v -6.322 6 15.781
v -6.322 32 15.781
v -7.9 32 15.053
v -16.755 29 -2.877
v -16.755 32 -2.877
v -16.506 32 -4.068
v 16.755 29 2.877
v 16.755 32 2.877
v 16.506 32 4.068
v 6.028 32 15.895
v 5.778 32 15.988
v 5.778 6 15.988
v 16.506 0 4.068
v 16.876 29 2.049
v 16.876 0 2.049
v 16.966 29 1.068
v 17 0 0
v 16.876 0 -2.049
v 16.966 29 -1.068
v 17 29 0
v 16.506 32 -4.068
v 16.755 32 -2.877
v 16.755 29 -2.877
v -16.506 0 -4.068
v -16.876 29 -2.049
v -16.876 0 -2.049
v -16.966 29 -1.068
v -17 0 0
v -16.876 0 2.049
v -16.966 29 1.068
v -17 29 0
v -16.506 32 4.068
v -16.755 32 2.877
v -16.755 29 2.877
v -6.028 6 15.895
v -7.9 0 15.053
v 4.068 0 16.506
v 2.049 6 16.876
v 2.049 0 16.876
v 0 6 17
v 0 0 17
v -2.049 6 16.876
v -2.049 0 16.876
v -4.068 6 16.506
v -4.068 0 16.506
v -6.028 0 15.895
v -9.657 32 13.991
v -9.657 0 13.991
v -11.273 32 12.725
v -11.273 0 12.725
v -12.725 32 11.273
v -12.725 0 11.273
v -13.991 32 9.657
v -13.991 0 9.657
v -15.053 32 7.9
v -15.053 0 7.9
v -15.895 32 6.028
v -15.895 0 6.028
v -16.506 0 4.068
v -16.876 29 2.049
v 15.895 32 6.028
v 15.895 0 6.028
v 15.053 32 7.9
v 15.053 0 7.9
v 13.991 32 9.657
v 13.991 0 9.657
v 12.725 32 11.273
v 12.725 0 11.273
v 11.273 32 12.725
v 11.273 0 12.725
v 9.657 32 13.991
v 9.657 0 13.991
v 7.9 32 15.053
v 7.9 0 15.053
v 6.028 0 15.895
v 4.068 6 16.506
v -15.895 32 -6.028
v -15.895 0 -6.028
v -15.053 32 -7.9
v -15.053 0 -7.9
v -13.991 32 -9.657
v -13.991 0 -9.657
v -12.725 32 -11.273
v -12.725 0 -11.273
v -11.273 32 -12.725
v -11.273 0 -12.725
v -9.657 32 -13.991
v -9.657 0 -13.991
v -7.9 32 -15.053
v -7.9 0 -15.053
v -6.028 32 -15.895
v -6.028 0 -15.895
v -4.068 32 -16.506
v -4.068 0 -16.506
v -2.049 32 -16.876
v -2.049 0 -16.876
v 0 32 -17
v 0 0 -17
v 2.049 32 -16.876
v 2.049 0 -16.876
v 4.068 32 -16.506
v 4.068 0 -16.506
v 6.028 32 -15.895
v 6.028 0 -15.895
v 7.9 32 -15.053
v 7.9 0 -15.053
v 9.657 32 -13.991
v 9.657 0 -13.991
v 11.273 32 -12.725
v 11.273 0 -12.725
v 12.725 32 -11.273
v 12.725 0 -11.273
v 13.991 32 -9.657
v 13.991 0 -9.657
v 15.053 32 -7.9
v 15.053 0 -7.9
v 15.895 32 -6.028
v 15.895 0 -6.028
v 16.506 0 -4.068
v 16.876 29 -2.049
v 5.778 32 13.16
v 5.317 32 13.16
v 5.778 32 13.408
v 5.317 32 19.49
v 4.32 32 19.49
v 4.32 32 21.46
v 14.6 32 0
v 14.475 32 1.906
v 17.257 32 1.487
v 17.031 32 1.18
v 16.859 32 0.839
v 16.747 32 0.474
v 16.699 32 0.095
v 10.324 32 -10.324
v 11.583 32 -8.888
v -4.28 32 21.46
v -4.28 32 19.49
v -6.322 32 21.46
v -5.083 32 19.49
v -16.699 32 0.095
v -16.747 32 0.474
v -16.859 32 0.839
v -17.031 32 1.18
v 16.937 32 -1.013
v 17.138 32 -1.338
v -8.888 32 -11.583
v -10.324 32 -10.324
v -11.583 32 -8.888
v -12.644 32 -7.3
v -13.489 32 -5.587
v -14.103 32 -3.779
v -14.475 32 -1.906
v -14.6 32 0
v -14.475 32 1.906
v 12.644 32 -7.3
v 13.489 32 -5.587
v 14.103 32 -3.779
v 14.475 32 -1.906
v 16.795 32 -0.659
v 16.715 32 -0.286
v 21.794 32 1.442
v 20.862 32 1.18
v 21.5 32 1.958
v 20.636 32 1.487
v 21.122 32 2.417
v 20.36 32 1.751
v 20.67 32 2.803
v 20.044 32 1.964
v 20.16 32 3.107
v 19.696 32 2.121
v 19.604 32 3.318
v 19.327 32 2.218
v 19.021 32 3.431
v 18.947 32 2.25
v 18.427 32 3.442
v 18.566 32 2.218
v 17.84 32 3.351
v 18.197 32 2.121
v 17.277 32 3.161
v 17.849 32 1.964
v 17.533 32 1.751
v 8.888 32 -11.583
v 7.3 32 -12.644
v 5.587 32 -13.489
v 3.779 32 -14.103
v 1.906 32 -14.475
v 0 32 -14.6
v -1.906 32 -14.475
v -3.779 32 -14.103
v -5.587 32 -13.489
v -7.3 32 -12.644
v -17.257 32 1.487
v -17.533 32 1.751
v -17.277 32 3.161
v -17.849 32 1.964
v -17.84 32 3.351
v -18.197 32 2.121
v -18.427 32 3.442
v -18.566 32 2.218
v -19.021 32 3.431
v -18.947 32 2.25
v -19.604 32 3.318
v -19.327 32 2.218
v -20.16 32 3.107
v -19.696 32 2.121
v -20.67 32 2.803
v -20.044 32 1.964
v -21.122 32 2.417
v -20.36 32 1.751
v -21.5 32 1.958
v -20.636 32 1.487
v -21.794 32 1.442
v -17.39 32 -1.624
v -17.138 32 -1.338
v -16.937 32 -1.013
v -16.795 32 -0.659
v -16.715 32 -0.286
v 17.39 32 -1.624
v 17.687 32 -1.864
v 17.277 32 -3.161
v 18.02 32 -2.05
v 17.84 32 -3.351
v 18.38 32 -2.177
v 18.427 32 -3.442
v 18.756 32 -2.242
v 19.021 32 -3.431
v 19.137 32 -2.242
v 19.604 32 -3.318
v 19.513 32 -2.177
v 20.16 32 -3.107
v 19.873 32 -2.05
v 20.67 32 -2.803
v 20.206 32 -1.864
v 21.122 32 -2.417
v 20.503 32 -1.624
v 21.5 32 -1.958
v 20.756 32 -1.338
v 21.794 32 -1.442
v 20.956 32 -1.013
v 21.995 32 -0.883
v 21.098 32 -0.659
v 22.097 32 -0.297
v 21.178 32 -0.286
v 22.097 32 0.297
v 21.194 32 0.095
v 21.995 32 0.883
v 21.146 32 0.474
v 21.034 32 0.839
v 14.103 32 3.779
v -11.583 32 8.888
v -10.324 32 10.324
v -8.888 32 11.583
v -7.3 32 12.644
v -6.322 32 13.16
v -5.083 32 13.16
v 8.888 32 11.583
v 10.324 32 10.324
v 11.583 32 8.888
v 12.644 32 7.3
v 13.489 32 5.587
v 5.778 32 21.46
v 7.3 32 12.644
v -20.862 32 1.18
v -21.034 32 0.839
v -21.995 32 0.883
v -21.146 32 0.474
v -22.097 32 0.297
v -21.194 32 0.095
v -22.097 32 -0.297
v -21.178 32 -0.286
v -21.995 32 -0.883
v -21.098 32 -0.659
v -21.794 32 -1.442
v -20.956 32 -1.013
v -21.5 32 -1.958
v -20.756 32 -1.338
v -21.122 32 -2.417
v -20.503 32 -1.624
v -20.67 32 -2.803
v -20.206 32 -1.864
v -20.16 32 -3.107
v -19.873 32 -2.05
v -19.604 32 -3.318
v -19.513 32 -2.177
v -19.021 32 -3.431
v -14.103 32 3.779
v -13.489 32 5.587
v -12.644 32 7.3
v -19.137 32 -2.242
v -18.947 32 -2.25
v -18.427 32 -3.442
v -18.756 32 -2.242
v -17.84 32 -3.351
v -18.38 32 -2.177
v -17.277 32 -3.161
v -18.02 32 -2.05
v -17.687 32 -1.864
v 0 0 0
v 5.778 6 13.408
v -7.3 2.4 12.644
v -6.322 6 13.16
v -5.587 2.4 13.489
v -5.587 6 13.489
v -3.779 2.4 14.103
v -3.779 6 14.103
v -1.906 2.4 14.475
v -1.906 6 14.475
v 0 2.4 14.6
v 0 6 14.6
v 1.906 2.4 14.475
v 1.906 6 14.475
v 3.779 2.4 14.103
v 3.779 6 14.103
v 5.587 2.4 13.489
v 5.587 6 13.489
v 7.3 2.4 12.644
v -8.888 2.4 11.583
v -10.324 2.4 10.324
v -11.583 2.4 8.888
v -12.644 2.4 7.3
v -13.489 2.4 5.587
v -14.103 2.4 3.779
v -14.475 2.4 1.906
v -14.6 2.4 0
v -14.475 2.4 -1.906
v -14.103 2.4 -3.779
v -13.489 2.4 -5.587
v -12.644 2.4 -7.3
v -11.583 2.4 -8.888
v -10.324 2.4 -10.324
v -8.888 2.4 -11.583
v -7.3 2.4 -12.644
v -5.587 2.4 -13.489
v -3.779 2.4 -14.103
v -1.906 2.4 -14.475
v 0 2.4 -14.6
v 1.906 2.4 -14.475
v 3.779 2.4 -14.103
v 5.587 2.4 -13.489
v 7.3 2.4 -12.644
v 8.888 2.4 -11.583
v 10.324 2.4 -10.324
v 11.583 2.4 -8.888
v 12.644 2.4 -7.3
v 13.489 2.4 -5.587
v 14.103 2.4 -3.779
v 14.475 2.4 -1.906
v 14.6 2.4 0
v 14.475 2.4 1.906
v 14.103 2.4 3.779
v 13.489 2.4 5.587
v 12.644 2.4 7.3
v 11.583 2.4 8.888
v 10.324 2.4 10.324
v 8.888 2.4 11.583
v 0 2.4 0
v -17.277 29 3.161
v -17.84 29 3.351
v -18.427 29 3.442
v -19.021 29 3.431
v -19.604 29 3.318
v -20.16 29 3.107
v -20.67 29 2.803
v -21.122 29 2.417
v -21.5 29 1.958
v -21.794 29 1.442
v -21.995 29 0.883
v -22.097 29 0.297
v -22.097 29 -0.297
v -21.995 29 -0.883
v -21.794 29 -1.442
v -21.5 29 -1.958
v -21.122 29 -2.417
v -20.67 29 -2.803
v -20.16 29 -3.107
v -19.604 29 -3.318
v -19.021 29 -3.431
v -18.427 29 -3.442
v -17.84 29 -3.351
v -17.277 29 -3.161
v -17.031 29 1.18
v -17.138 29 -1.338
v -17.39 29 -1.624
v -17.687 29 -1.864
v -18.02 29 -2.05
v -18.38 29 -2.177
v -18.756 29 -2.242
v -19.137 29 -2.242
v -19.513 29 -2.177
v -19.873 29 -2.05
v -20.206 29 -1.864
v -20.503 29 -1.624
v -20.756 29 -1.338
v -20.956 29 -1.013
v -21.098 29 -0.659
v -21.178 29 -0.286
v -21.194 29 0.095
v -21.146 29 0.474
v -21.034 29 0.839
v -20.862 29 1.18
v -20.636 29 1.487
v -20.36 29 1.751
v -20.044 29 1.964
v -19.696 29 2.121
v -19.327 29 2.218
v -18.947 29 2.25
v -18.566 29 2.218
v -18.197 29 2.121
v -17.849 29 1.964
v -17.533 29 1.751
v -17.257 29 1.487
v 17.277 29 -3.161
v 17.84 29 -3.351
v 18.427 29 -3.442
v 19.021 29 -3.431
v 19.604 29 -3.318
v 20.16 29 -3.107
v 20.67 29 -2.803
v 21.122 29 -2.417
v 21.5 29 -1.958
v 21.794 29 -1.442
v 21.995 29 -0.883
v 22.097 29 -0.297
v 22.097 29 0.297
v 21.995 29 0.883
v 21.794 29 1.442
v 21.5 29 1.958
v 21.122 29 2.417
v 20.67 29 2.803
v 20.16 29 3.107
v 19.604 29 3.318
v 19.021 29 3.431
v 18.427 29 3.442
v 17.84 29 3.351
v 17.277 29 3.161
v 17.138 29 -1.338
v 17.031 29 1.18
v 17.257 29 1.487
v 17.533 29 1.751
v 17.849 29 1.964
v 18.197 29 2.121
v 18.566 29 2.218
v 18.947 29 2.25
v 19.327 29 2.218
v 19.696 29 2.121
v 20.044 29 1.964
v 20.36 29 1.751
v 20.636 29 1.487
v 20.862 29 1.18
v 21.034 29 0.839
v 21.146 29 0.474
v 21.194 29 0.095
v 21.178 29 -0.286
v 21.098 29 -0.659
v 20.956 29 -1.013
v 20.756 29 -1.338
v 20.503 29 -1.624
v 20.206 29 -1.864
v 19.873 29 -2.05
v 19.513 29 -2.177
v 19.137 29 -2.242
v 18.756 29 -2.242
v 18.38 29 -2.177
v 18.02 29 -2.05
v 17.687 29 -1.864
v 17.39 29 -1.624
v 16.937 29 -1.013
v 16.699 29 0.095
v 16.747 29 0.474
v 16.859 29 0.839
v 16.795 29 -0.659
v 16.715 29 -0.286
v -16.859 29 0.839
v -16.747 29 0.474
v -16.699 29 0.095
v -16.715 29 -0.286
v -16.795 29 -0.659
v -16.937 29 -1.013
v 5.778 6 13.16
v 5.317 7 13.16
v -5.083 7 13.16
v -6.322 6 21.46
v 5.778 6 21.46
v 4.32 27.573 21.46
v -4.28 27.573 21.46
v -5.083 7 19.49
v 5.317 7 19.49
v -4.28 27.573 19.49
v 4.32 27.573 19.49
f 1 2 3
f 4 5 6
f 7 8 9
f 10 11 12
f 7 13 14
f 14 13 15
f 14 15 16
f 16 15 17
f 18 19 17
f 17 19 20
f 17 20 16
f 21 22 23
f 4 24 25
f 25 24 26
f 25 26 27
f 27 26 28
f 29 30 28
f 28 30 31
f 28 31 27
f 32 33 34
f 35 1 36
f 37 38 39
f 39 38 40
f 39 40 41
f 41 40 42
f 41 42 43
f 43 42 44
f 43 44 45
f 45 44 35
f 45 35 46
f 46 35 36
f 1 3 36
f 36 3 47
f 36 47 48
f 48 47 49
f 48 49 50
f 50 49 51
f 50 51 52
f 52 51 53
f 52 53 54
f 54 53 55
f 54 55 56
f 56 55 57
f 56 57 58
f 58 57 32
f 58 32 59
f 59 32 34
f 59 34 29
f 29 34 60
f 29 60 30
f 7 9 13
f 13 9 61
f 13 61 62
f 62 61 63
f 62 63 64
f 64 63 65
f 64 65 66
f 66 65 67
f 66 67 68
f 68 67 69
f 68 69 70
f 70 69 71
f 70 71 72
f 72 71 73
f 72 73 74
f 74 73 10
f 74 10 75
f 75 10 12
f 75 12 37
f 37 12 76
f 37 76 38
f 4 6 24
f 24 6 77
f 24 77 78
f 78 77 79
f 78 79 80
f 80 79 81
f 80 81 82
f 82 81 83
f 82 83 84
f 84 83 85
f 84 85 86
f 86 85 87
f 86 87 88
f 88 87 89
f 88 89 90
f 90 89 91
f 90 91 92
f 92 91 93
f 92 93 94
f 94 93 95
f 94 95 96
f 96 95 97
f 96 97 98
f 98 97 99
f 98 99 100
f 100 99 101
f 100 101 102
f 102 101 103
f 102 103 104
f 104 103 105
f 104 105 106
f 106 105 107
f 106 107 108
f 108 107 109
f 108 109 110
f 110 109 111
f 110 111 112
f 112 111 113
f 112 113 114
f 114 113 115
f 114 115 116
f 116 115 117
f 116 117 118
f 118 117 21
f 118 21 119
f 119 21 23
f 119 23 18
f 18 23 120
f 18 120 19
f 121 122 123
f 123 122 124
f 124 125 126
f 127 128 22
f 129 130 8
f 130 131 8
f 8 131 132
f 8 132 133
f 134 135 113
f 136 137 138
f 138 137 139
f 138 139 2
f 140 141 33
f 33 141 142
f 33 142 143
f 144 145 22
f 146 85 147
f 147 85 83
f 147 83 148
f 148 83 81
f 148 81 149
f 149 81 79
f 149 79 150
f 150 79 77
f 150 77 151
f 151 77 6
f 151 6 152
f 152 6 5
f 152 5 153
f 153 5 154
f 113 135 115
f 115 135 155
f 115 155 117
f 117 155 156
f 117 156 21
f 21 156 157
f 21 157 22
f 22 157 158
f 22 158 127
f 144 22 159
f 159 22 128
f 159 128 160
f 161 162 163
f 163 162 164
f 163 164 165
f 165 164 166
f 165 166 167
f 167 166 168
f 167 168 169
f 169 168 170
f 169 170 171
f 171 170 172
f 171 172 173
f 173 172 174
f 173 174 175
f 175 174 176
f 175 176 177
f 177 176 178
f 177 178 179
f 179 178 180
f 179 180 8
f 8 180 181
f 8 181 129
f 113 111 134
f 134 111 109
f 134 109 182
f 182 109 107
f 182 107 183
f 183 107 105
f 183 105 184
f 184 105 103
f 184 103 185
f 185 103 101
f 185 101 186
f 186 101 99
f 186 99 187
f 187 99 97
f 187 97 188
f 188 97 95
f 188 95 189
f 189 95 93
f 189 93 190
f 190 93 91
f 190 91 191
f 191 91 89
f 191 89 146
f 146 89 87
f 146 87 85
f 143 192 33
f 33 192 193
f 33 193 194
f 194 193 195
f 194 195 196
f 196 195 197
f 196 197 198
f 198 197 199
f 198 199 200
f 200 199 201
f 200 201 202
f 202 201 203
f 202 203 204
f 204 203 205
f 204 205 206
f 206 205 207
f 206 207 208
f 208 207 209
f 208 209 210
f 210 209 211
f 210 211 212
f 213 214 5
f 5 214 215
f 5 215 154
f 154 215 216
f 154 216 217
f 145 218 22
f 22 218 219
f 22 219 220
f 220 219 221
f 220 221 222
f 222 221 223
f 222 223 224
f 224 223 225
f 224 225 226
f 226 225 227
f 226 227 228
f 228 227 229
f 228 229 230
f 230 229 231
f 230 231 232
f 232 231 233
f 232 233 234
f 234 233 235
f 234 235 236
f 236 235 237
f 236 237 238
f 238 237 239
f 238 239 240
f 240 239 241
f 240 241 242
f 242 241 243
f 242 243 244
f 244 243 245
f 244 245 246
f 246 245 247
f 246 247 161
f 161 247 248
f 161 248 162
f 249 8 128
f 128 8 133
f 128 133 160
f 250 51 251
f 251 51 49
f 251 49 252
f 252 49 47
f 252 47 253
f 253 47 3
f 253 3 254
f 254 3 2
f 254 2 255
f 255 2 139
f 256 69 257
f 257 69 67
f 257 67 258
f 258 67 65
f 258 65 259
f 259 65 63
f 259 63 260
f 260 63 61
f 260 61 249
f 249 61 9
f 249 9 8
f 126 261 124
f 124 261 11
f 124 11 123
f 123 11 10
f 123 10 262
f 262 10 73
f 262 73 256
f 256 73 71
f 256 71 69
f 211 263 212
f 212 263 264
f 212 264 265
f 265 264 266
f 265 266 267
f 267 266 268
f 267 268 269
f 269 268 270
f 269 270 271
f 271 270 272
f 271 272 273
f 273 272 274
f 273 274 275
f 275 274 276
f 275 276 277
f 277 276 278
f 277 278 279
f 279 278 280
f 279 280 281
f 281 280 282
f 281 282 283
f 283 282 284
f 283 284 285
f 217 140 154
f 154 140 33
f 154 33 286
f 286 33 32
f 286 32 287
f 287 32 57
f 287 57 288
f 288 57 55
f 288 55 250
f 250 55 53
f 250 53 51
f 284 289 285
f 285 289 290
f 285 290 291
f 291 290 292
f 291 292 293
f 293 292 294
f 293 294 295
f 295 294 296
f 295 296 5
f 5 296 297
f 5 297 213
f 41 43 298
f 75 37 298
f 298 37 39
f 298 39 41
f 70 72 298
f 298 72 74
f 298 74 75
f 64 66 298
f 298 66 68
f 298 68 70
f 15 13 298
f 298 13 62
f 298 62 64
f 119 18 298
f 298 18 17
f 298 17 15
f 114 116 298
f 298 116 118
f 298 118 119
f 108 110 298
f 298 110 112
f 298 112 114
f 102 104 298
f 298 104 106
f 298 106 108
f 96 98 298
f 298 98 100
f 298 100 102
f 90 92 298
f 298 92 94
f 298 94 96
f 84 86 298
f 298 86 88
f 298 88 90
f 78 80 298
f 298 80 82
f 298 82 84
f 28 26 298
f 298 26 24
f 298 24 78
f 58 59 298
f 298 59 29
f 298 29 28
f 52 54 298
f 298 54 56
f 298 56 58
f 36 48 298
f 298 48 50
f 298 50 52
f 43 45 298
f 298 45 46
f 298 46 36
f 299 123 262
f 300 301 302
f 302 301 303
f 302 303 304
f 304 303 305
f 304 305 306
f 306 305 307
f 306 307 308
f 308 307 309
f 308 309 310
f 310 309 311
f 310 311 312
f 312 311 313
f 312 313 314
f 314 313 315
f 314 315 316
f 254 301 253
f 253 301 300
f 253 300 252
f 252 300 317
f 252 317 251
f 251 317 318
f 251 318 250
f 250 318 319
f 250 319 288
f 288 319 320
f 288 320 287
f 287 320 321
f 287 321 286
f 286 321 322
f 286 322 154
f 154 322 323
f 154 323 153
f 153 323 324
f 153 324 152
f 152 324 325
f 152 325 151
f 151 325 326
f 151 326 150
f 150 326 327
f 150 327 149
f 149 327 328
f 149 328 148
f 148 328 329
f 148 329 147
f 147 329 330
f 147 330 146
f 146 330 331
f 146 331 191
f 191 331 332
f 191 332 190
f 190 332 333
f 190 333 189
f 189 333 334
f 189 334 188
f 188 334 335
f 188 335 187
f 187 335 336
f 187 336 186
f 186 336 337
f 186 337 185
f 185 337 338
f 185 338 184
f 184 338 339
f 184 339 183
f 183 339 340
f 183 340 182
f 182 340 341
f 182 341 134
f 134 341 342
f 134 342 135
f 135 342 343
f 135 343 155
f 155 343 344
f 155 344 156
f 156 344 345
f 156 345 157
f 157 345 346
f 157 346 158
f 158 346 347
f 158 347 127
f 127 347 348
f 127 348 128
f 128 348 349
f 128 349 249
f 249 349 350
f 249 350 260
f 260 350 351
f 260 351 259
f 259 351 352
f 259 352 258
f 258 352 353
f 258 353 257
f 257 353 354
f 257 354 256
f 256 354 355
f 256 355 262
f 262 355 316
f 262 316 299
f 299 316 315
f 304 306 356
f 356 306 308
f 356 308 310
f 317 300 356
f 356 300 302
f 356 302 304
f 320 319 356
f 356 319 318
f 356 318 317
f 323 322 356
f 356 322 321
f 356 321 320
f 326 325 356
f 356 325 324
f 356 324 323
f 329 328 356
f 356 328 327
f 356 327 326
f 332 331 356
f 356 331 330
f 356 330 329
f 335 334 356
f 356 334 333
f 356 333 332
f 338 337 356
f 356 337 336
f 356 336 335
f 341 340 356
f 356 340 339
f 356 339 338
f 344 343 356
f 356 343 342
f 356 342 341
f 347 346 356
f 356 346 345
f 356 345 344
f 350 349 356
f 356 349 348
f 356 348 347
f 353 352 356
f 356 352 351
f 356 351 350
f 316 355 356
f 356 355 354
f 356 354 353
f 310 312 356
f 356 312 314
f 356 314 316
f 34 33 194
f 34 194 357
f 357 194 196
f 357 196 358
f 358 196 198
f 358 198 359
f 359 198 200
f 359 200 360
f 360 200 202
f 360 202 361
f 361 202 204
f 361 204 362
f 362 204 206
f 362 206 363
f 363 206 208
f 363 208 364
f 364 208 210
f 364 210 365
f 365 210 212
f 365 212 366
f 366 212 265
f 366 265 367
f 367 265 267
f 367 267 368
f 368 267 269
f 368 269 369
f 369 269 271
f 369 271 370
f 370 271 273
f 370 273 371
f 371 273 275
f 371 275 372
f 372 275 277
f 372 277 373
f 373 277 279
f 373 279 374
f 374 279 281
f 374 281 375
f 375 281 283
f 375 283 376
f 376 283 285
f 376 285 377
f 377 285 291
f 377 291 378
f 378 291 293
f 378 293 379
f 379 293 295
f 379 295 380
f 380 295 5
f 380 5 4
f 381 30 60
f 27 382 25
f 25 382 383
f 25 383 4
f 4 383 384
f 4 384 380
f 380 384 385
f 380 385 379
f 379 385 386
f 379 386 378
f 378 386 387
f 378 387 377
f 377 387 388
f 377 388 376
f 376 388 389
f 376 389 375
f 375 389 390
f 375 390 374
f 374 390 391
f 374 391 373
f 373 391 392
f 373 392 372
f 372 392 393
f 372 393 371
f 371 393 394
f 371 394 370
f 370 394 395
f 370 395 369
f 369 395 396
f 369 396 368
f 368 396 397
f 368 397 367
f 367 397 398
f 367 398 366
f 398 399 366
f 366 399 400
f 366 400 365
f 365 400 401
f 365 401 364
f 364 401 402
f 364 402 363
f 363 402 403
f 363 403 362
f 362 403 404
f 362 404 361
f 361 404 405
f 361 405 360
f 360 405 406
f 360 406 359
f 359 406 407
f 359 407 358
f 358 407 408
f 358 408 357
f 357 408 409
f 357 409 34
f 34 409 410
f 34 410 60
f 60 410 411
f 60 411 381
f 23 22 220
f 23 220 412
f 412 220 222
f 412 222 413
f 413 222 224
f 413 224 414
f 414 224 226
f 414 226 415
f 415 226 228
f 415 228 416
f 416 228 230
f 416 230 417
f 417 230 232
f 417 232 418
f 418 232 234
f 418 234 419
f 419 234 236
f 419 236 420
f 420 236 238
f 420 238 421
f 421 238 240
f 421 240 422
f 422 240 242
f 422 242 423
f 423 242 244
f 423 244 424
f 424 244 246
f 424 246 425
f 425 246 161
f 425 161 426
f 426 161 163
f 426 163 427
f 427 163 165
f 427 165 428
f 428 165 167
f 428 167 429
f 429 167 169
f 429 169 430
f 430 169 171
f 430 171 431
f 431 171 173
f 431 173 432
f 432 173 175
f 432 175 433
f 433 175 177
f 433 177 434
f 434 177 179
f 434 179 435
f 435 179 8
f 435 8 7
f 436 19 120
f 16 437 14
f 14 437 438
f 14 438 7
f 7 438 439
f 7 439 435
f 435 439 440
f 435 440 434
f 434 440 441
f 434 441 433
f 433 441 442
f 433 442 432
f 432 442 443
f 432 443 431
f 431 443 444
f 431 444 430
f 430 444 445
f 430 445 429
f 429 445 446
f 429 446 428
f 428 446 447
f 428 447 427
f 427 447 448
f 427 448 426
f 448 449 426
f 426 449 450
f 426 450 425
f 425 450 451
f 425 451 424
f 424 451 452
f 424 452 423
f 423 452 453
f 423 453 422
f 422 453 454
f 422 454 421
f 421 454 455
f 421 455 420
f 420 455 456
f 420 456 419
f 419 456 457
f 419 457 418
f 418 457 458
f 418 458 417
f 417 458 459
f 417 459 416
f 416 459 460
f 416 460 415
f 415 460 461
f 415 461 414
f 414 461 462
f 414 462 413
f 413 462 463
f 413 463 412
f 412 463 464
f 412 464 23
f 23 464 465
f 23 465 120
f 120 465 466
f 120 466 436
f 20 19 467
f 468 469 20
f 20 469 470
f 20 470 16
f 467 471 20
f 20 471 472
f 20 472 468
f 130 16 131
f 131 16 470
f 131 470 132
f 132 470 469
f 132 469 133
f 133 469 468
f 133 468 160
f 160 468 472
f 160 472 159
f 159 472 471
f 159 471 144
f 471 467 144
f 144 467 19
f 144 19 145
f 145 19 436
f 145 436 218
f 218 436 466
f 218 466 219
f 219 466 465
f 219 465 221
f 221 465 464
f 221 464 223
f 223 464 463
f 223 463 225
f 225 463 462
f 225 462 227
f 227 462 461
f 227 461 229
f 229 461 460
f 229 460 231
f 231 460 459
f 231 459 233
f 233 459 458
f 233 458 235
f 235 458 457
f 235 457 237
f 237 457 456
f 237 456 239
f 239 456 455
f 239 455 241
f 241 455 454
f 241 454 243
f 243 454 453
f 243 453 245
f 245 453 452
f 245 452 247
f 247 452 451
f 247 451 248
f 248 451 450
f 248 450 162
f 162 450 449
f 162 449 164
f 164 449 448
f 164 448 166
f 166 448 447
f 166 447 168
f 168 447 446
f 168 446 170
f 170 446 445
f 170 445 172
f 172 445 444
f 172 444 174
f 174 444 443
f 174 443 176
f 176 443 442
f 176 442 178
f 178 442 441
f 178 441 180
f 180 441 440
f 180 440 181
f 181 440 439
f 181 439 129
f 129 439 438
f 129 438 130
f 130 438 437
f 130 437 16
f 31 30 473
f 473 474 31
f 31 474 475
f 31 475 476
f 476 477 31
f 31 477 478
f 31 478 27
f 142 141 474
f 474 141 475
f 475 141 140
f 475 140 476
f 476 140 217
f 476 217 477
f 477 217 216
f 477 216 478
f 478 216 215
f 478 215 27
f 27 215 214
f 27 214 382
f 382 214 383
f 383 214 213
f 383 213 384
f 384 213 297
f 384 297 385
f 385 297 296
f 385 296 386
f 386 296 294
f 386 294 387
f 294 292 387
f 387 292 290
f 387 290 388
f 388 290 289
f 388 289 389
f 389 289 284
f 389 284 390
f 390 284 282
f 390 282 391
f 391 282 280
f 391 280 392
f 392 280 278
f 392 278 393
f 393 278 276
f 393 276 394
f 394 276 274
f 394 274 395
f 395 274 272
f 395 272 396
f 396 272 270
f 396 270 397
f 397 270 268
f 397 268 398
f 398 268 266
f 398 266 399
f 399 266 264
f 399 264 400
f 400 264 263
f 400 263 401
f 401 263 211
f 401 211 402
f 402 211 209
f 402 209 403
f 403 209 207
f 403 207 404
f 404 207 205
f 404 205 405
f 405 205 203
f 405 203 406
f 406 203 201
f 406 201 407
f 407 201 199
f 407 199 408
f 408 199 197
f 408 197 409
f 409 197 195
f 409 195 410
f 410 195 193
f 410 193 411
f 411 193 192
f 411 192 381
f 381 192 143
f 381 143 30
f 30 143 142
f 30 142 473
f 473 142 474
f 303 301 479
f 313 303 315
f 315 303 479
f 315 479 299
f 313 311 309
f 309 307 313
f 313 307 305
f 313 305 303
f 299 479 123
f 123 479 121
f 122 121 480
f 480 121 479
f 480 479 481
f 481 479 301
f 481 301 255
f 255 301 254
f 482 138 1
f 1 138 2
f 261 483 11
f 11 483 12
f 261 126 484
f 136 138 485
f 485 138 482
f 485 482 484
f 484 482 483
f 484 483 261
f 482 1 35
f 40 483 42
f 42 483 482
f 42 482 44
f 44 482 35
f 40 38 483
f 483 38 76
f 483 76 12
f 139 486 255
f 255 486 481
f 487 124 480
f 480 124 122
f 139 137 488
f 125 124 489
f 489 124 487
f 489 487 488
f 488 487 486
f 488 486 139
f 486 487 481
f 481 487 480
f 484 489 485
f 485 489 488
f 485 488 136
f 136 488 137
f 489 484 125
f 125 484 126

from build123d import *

# Parameters (mm, degrees)
SKETCH1_R           = 17
BOSS_EXTRUDE1_DEPTH = 32
SHELL1_T            = -2.4
SKETCH2_R           = 3.45
BOSS_EXTRUDE3_DEPTH = 3
SKETCH4_R           = 2.25
CUT_EXTRUDE1_DEPTH  = 3
SKETCH5_W           = 12.1
SKETCH5_H           = 8.3
BOSS_EXTRUDE4_DEPTH = 26
SKETCH6_W           = 10.4
SKETCH6_H           = 8.6
CUT_EXTRUDE2_DEPTH  = 25
SKETCH7_W           = 8.6
SKETCH7_H           = 5.8
CUT_EXTRUDE3_DEPTH  = 5


with BuildPart() as part:
    # Sketch1 → Boss-Extrude1 (new body)
    with BuildSketch(Plane(origin=(0, 0, 0), x_dir=(1, 0, 0), z_dir=(0, 1, 0))):
        with Locations(Location((0, 0, 0), (0, 0, 270))):
            Circle(SKETCH1_R)
    extrude(amount=BOSS_EXTRUDE1_DEPTH)

    # Shell1
    shell1_openings = [part.faces().sort_by_distance(p)[0] for p in [
        (0, 32, 0),
    ]]
    offset(amount=SHELL1_T, openings=shell1_openings, kind=Kind.INTERSECTION)

    # Sketch2 → Boss-Extrude3 (add)
    with BuildSketch(Plane(origin=(0, 32, 0), x_dir=(1, 0, 0), z_dir=(0, 1, 0))):
        with Locations((18.659372003, 0)):
            Circle(SKETCH2_R)
        with Locations((-18.659372003, 0)):
            Circle(SKETCH2_R)
    extrude(amount=-BOSS_EXTRUDE3_DEPTH)

    # Sketch4 → Cut-Extrude1 (cut)
    with BuildSketch(Plane(origin=(0, 32, 0), x_dir=(1, 0, 0), z_dir=(0, 1, 0))):
        with Locations(Location((18.946509427, 0, 0), (0, 0, 270))):
            Circle(SKETCH4_R)
        with Locations(Location((-18.946509427, 0, 0), (0, 0, 331.648790534))):
            Circle(SKETCH4_R)
    extrude(amount=-CUT_EXTRUDE1_DEPTH, mode=Mode.SUBTRACT)

    # Sketch5 → Boss-Extrude4 (add)
    with BuildSketch(Plane(origin=(0, 32, 0), x_dir=(1, 0, 0), z_dir=(0, 1, 0))):
        with Locations((-0.271875844, -17.310314807)):
            Rectangle(SKETCH5_W, SKETCH5_H)
    extrude(amount=-BOSS_EXTRUDE4_DEPTH)

    # Sketch6 → Cut-Extrude2 (cut)
    with BuildSketch(Plane(origin=(0, 32, 0), x_dir=(1, 0, 0), z_dir=(0, 1, 0))):
        with Locations((0.116623003, -15.189562959)):
            Rectangle(SKETCH6_W, SKETCH6_H)
    extrude(amount=-CUT_EXTRUDE2_DEPTH, mode=Mode.SUBTRACT)

    # Sketch7 → Cut-Extrude3 (cut)
    with BuildSketch(Plane.XY.offset(21.460314807)):
        with Locations((0.019518241, 30.472573952)):
            Rectangle(SKETCH7_W, SKETCH7_H)
    extrude(amount=-CUT_EXTRUDE3_DEPTH, mode=Mode.SUBTRACT)


solid = part.part
